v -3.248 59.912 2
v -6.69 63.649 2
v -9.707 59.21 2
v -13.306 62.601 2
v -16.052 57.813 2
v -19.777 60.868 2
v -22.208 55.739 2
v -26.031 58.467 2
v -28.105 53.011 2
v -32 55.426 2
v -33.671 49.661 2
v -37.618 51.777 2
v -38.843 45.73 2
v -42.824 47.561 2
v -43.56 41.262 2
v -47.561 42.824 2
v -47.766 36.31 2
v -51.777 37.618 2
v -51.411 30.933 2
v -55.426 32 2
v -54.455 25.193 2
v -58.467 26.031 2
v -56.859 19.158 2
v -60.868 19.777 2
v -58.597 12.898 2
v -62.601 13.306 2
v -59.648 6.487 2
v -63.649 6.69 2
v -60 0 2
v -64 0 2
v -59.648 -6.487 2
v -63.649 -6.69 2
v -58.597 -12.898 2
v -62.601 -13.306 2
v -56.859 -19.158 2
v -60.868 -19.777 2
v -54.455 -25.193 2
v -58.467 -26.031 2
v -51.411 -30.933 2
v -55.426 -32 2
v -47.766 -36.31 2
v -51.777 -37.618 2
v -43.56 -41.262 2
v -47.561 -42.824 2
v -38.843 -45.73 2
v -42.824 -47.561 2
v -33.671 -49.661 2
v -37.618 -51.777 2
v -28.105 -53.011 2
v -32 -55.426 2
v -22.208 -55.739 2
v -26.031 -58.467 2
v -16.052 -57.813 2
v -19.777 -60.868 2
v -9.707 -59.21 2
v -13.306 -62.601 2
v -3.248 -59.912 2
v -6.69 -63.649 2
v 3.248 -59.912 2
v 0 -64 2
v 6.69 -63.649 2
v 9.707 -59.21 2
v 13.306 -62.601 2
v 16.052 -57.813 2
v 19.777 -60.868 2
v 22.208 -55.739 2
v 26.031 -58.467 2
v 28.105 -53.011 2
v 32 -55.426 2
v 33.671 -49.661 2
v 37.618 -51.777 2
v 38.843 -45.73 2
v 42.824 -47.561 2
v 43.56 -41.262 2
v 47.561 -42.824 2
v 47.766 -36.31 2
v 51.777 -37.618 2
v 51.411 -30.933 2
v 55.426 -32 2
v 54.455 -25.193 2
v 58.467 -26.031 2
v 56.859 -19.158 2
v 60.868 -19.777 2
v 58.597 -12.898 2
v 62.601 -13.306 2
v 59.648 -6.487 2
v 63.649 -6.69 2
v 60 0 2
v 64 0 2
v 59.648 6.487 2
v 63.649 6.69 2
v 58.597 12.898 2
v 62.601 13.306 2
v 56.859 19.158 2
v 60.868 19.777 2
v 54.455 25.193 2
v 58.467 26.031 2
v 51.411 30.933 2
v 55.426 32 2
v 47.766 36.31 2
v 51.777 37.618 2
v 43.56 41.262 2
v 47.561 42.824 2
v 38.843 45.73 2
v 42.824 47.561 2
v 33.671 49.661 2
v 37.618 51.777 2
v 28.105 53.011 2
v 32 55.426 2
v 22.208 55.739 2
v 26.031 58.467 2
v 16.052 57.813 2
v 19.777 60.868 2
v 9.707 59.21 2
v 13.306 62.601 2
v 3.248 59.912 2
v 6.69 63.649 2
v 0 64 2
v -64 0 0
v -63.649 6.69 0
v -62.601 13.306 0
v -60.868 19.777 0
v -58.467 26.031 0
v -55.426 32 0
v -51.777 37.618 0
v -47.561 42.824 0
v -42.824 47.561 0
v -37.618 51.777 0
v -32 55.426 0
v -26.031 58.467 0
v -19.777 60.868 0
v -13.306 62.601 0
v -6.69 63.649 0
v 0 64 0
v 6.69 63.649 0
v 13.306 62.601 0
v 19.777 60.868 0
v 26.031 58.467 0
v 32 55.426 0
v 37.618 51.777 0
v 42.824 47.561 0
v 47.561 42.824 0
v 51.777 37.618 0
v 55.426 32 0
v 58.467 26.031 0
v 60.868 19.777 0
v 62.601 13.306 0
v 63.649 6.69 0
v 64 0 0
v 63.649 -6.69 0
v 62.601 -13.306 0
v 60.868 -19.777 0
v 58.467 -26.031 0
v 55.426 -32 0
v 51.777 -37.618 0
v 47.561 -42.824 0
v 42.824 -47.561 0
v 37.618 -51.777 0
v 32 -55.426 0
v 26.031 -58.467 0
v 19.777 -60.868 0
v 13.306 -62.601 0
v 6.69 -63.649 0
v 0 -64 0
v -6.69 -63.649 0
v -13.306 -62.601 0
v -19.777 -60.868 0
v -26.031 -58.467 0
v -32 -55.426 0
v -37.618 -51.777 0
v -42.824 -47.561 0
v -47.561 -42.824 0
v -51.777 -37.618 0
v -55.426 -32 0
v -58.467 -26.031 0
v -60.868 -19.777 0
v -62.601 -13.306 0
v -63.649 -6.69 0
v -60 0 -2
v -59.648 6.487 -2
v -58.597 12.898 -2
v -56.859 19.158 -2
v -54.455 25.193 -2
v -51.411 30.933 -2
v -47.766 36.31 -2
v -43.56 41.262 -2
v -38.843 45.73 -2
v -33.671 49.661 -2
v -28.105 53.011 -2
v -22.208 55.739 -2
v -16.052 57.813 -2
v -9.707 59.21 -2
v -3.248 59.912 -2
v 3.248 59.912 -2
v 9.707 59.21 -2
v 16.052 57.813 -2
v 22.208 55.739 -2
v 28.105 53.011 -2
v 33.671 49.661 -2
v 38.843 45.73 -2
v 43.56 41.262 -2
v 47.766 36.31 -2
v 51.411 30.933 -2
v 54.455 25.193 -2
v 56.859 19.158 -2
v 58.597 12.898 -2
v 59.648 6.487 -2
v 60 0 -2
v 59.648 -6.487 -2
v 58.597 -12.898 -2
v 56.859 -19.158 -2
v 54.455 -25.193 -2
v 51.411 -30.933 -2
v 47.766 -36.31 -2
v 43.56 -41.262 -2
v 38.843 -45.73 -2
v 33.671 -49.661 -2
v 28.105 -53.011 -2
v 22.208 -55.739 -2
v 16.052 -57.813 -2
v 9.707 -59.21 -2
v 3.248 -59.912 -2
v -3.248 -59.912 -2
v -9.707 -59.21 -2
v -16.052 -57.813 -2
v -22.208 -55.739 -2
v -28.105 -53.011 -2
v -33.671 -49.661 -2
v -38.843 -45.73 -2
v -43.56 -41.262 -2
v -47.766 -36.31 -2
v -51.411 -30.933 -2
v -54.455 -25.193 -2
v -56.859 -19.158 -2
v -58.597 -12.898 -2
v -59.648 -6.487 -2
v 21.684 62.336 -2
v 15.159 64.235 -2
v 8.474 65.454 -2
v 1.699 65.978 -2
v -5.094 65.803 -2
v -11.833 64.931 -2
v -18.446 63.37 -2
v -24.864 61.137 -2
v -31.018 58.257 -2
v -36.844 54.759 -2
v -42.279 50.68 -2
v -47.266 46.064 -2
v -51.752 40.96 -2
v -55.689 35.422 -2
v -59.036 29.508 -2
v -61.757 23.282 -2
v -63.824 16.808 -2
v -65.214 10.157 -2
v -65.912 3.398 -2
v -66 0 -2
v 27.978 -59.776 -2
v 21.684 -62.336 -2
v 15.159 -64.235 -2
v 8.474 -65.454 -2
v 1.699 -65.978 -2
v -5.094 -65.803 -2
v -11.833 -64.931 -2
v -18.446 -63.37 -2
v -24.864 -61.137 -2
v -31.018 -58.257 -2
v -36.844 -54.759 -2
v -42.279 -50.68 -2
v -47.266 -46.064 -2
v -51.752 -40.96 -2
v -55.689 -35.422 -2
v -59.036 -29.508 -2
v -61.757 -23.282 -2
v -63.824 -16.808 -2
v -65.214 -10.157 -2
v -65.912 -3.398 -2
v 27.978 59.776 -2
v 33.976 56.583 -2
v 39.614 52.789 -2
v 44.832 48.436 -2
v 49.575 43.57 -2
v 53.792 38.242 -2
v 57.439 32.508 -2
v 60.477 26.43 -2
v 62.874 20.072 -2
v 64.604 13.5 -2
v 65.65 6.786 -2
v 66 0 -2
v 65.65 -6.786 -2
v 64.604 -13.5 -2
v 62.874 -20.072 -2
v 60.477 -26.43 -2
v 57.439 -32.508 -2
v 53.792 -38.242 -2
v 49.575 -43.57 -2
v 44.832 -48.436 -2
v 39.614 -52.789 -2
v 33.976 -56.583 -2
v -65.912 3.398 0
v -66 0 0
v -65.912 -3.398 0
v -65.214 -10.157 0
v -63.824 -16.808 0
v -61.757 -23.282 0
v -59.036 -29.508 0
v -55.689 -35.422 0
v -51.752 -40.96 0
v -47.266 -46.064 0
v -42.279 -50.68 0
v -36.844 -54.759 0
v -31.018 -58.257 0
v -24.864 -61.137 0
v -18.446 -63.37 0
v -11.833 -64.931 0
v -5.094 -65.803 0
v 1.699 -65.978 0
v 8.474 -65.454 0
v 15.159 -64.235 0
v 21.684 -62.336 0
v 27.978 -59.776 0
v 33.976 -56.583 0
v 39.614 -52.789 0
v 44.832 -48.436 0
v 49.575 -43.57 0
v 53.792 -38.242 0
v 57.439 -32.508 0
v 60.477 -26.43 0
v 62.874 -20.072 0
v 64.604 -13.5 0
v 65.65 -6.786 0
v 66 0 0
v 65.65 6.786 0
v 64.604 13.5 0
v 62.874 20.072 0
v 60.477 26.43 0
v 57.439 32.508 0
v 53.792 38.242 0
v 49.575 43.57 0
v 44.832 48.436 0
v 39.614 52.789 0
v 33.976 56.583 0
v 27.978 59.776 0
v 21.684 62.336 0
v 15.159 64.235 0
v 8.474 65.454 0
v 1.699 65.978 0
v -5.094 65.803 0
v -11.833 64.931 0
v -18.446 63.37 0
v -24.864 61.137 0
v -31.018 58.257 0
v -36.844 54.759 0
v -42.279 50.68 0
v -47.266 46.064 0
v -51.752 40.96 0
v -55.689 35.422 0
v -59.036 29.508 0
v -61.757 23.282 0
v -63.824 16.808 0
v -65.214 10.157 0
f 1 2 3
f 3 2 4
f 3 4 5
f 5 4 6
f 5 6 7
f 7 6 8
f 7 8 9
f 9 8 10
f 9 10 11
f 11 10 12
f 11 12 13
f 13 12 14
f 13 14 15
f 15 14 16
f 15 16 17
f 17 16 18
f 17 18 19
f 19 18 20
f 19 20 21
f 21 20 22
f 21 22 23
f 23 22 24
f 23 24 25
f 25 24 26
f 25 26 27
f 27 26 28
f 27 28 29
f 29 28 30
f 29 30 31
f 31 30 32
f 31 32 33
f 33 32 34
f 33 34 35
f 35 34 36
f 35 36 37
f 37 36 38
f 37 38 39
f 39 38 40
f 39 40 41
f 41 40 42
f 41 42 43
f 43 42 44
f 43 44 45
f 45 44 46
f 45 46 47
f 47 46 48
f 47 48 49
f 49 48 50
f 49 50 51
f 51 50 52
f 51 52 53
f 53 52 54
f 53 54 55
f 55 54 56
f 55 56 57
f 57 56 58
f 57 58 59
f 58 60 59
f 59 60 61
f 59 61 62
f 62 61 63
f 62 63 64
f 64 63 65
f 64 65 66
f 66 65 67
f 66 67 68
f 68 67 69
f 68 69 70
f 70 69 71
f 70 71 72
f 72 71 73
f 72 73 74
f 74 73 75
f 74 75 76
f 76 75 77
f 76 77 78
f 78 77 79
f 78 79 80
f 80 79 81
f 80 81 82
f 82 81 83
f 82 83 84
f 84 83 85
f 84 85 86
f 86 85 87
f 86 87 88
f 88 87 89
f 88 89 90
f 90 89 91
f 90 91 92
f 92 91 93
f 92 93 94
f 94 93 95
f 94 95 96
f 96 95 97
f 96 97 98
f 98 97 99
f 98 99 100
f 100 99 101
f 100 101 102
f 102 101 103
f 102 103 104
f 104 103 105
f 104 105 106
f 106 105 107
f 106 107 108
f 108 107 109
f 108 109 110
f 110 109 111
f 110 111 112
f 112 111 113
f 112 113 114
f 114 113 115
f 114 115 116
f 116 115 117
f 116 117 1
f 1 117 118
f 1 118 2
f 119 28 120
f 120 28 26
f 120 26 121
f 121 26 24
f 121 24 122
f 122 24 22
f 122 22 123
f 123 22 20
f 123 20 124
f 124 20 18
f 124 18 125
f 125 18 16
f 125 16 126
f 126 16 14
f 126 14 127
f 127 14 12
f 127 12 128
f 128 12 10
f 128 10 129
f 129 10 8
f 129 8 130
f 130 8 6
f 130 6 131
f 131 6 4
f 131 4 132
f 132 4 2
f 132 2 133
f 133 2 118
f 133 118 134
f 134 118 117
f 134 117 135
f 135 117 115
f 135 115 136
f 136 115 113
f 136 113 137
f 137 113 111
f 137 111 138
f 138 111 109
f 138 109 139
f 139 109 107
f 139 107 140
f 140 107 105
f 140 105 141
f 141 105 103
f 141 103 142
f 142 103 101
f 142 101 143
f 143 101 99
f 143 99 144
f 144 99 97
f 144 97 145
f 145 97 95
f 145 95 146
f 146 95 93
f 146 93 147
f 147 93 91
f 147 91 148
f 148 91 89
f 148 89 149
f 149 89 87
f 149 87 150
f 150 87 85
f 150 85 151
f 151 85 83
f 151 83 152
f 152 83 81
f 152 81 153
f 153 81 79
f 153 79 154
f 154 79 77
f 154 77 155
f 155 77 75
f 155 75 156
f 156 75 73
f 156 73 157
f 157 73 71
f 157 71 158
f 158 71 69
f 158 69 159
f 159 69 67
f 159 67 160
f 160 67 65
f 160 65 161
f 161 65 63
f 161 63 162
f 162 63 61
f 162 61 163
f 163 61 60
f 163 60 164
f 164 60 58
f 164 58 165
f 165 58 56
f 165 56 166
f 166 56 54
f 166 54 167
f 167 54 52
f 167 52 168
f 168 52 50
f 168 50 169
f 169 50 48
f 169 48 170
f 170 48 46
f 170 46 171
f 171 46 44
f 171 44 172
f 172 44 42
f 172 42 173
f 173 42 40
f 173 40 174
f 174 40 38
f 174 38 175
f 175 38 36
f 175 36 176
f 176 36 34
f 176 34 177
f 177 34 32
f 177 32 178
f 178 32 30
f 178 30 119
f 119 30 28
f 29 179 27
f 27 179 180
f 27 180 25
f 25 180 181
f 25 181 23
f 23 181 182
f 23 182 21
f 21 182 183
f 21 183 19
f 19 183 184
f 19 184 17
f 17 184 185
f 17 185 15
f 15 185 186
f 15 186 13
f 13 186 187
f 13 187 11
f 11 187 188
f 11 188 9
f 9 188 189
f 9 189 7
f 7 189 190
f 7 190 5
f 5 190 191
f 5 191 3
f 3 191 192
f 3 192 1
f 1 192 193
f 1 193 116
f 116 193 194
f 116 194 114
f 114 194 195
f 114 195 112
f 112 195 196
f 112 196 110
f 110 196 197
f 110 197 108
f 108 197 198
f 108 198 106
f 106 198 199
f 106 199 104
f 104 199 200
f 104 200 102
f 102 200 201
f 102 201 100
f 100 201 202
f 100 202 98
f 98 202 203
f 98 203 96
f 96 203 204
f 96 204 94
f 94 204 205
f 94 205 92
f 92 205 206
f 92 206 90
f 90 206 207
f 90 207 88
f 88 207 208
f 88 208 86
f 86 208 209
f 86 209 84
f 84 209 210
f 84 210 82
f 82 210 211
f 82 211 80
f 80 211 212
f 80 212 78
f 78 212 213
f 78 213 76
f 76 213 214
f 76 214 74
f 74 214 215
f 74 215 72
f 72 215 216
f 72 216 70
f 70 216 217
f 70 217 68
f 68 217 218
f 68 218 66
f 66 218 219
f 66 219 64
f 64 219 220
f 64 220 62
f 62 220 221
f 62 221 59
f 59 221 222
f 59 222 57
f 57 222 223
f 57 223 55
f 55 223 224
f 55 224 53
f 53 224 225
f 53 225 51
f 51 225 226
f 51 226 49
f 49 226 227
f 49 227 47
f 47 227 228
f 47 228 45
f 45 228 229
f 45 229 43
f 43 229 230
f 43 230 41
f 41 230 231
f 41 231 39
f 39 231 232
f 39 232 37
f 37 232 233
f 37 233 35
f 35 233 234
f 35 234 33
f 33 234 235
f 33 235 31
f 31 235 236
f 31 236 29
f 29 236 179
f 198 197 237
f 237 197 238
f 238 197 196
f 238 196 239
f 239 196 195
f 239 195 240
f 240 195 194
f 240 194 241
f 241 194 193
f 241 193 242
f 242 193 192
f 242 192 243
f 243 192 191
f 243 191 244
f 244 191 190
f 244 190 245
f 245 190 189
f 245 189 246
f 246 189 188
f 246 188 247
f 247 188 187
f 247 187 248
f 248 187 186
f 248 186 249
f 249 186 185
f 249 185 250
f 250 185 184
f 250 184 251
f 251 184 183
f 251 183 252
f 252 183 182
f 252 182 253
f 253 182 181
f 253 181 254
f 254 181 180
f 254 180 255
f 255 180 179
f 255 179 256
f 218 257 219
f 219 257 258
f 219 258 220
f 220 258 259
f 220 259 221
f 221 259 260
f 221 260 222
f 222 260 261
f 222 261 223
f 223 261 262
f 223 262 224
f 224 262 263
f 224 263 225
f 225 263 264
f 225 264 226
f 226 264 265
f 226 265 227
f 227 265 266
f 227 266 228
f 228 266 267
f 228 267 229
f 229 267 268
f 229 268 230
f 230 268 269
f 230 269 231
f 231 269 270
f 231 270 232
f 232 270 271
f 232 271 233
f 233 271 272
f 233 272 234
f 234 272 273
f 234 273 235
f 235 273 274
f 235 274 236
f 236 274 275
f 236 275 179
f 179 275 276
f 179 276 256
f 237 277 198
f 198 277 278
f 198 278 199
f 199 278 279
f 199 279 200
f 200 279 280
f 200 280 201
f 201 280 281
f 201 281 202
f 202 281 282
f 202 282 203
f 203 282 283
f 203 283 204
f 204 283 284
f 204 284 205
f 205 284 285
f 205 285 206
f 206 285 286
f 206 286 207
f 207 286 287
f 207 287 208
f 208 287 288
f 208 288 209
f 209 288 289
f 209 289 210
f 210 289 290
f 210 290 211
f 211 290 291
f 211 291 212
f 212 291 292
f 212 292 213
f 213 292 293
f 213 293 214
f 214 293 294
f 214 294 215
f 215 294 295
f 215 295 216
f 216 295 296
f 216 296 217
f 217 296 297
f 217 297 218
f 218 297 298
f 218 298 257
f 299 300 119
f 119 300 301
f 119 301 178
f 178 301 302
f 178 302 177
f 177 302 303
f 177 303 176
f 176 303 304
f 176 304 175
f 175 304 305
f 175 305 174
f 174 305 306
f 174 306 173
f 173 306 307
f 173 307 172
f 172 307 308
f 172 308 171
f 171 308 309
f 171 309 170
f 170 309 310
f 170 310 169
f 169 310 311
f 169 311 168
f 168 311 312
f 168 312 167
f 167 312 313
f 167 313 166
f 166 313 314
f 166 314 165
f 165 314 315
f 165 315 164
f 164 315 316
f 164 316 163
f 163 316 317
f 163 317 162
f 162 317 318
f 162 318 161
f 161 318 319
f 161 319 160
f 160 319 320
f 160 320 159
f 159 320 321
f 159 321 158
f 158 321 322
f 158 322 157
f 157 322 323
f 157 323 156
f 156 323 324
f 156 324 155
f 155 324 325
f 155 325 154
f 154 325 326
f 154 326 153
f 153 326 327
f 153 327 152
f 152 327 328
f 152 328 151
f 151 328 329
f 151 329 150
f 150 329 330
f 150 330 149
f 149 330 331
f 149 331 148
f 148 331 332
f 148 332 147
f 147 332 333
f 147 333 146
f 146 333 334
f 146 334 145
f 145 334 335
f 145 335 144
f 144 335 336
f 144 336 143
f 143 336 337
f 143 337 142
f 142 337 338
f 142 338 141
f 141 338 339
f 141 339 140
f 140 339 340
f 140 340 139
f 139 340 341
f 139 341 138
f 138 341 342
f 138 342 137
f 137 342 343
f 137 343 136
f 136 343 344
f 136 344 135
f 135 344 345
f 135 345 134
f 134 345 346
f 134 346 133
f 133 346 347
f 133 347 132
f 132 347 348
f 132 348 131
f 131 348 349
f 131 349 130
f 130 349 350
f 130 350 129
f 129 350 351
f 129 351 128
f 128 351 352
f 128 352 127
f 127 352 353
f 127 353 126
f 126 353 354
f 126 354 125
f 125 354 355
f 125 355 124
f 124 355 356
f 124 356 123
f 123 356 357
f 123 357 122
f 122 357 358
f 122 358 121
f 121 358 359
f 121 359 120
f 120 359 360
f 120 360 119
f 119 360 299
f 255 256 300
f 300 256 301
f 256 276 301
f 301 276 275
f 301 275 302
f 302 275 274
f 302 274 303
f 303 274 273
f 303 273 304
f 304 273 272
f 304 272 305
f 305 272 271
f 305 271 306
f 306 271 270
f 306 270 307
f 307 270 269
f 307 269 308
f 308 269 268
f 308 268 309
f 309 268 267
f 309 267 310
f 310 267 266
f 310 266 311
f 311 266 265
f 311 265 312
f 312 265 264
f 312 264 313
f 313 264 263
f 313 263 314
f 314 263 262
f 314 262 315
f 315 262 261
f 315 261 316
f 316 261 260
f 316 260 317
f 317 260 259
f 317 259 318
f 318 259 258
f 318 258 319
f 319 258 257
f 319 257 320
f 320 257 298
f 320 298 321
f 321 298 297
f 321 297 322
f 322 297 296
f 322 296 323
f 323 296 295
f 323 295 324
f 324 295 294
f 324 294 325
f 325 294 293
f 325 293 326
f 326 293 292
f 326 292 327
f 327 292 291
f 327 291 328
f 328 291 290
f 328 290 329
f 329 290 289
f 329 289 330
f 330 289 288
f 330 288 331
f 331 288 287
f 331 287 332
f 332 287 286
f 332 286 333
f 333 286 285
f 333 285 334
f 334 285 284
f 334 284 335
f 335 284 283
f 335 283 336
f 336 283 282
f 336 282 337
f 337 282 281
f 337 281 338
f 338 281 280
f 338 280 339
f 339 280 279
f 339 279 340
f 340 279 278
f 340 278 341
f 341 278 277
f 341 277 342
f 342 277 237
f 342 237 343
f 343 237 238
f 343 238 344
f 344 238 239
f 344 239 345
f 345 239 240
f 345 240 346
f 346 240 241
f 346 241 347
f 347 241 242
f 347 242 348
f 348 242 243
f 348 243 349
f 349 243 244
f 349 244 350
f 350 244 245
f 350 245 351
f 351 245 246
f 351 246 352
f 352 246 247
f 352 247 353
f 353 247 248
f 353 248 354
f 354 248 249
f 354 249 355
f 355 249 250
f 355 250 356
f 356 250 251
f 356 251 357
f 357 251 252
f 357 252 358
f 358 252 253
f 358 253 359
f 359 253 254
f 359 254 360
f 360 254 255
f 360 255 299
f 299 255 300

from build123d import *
from build123d.topology import SkipClean

# Parameters (mm, degrees)
SKETCH1_R           = 64
SKETCH1_R_2         = 60
BOSS_EXTRUDE1_DEPTH = 2
BOSS_EXTRUDE2_START = 2
SKETCH3_R           = 66
SKETCH3_R_2         = 60
BOSS_EXTRUDE2_DEPTH = 2


with BuildPart() as part:
    # Sketch1 → Boss-Extrude1 (new body)
    with BuildSketch(Plane.XY):
        Circle(SKETCH1_R)
        Circle(SKETCH1_R_2, mode=Mode.SUBTRACT)
    extrude(amount=BOSS_EXTRUDE1_DEPTH)

    # Sketch3 → Boss-Extrude2 (add)
    with SkipClean():  # the faces are left unmerged after this step: merging them gives an invalid solid
        with BuildSketch(Plane(origin=(0, 0, 0), x_dir=(-1, 0, 0), z_dir=(0, 0, -1)).offset(BOSS_EXTRUDE2_START)):
            Circle(SKETCH3_R)
            Circle(SKETCH3_R_2, mode=Mode.SUBTRACT)
        extrude(amount=-BOSS_EXTRUDE2_DEPTH)


solid = part.part
